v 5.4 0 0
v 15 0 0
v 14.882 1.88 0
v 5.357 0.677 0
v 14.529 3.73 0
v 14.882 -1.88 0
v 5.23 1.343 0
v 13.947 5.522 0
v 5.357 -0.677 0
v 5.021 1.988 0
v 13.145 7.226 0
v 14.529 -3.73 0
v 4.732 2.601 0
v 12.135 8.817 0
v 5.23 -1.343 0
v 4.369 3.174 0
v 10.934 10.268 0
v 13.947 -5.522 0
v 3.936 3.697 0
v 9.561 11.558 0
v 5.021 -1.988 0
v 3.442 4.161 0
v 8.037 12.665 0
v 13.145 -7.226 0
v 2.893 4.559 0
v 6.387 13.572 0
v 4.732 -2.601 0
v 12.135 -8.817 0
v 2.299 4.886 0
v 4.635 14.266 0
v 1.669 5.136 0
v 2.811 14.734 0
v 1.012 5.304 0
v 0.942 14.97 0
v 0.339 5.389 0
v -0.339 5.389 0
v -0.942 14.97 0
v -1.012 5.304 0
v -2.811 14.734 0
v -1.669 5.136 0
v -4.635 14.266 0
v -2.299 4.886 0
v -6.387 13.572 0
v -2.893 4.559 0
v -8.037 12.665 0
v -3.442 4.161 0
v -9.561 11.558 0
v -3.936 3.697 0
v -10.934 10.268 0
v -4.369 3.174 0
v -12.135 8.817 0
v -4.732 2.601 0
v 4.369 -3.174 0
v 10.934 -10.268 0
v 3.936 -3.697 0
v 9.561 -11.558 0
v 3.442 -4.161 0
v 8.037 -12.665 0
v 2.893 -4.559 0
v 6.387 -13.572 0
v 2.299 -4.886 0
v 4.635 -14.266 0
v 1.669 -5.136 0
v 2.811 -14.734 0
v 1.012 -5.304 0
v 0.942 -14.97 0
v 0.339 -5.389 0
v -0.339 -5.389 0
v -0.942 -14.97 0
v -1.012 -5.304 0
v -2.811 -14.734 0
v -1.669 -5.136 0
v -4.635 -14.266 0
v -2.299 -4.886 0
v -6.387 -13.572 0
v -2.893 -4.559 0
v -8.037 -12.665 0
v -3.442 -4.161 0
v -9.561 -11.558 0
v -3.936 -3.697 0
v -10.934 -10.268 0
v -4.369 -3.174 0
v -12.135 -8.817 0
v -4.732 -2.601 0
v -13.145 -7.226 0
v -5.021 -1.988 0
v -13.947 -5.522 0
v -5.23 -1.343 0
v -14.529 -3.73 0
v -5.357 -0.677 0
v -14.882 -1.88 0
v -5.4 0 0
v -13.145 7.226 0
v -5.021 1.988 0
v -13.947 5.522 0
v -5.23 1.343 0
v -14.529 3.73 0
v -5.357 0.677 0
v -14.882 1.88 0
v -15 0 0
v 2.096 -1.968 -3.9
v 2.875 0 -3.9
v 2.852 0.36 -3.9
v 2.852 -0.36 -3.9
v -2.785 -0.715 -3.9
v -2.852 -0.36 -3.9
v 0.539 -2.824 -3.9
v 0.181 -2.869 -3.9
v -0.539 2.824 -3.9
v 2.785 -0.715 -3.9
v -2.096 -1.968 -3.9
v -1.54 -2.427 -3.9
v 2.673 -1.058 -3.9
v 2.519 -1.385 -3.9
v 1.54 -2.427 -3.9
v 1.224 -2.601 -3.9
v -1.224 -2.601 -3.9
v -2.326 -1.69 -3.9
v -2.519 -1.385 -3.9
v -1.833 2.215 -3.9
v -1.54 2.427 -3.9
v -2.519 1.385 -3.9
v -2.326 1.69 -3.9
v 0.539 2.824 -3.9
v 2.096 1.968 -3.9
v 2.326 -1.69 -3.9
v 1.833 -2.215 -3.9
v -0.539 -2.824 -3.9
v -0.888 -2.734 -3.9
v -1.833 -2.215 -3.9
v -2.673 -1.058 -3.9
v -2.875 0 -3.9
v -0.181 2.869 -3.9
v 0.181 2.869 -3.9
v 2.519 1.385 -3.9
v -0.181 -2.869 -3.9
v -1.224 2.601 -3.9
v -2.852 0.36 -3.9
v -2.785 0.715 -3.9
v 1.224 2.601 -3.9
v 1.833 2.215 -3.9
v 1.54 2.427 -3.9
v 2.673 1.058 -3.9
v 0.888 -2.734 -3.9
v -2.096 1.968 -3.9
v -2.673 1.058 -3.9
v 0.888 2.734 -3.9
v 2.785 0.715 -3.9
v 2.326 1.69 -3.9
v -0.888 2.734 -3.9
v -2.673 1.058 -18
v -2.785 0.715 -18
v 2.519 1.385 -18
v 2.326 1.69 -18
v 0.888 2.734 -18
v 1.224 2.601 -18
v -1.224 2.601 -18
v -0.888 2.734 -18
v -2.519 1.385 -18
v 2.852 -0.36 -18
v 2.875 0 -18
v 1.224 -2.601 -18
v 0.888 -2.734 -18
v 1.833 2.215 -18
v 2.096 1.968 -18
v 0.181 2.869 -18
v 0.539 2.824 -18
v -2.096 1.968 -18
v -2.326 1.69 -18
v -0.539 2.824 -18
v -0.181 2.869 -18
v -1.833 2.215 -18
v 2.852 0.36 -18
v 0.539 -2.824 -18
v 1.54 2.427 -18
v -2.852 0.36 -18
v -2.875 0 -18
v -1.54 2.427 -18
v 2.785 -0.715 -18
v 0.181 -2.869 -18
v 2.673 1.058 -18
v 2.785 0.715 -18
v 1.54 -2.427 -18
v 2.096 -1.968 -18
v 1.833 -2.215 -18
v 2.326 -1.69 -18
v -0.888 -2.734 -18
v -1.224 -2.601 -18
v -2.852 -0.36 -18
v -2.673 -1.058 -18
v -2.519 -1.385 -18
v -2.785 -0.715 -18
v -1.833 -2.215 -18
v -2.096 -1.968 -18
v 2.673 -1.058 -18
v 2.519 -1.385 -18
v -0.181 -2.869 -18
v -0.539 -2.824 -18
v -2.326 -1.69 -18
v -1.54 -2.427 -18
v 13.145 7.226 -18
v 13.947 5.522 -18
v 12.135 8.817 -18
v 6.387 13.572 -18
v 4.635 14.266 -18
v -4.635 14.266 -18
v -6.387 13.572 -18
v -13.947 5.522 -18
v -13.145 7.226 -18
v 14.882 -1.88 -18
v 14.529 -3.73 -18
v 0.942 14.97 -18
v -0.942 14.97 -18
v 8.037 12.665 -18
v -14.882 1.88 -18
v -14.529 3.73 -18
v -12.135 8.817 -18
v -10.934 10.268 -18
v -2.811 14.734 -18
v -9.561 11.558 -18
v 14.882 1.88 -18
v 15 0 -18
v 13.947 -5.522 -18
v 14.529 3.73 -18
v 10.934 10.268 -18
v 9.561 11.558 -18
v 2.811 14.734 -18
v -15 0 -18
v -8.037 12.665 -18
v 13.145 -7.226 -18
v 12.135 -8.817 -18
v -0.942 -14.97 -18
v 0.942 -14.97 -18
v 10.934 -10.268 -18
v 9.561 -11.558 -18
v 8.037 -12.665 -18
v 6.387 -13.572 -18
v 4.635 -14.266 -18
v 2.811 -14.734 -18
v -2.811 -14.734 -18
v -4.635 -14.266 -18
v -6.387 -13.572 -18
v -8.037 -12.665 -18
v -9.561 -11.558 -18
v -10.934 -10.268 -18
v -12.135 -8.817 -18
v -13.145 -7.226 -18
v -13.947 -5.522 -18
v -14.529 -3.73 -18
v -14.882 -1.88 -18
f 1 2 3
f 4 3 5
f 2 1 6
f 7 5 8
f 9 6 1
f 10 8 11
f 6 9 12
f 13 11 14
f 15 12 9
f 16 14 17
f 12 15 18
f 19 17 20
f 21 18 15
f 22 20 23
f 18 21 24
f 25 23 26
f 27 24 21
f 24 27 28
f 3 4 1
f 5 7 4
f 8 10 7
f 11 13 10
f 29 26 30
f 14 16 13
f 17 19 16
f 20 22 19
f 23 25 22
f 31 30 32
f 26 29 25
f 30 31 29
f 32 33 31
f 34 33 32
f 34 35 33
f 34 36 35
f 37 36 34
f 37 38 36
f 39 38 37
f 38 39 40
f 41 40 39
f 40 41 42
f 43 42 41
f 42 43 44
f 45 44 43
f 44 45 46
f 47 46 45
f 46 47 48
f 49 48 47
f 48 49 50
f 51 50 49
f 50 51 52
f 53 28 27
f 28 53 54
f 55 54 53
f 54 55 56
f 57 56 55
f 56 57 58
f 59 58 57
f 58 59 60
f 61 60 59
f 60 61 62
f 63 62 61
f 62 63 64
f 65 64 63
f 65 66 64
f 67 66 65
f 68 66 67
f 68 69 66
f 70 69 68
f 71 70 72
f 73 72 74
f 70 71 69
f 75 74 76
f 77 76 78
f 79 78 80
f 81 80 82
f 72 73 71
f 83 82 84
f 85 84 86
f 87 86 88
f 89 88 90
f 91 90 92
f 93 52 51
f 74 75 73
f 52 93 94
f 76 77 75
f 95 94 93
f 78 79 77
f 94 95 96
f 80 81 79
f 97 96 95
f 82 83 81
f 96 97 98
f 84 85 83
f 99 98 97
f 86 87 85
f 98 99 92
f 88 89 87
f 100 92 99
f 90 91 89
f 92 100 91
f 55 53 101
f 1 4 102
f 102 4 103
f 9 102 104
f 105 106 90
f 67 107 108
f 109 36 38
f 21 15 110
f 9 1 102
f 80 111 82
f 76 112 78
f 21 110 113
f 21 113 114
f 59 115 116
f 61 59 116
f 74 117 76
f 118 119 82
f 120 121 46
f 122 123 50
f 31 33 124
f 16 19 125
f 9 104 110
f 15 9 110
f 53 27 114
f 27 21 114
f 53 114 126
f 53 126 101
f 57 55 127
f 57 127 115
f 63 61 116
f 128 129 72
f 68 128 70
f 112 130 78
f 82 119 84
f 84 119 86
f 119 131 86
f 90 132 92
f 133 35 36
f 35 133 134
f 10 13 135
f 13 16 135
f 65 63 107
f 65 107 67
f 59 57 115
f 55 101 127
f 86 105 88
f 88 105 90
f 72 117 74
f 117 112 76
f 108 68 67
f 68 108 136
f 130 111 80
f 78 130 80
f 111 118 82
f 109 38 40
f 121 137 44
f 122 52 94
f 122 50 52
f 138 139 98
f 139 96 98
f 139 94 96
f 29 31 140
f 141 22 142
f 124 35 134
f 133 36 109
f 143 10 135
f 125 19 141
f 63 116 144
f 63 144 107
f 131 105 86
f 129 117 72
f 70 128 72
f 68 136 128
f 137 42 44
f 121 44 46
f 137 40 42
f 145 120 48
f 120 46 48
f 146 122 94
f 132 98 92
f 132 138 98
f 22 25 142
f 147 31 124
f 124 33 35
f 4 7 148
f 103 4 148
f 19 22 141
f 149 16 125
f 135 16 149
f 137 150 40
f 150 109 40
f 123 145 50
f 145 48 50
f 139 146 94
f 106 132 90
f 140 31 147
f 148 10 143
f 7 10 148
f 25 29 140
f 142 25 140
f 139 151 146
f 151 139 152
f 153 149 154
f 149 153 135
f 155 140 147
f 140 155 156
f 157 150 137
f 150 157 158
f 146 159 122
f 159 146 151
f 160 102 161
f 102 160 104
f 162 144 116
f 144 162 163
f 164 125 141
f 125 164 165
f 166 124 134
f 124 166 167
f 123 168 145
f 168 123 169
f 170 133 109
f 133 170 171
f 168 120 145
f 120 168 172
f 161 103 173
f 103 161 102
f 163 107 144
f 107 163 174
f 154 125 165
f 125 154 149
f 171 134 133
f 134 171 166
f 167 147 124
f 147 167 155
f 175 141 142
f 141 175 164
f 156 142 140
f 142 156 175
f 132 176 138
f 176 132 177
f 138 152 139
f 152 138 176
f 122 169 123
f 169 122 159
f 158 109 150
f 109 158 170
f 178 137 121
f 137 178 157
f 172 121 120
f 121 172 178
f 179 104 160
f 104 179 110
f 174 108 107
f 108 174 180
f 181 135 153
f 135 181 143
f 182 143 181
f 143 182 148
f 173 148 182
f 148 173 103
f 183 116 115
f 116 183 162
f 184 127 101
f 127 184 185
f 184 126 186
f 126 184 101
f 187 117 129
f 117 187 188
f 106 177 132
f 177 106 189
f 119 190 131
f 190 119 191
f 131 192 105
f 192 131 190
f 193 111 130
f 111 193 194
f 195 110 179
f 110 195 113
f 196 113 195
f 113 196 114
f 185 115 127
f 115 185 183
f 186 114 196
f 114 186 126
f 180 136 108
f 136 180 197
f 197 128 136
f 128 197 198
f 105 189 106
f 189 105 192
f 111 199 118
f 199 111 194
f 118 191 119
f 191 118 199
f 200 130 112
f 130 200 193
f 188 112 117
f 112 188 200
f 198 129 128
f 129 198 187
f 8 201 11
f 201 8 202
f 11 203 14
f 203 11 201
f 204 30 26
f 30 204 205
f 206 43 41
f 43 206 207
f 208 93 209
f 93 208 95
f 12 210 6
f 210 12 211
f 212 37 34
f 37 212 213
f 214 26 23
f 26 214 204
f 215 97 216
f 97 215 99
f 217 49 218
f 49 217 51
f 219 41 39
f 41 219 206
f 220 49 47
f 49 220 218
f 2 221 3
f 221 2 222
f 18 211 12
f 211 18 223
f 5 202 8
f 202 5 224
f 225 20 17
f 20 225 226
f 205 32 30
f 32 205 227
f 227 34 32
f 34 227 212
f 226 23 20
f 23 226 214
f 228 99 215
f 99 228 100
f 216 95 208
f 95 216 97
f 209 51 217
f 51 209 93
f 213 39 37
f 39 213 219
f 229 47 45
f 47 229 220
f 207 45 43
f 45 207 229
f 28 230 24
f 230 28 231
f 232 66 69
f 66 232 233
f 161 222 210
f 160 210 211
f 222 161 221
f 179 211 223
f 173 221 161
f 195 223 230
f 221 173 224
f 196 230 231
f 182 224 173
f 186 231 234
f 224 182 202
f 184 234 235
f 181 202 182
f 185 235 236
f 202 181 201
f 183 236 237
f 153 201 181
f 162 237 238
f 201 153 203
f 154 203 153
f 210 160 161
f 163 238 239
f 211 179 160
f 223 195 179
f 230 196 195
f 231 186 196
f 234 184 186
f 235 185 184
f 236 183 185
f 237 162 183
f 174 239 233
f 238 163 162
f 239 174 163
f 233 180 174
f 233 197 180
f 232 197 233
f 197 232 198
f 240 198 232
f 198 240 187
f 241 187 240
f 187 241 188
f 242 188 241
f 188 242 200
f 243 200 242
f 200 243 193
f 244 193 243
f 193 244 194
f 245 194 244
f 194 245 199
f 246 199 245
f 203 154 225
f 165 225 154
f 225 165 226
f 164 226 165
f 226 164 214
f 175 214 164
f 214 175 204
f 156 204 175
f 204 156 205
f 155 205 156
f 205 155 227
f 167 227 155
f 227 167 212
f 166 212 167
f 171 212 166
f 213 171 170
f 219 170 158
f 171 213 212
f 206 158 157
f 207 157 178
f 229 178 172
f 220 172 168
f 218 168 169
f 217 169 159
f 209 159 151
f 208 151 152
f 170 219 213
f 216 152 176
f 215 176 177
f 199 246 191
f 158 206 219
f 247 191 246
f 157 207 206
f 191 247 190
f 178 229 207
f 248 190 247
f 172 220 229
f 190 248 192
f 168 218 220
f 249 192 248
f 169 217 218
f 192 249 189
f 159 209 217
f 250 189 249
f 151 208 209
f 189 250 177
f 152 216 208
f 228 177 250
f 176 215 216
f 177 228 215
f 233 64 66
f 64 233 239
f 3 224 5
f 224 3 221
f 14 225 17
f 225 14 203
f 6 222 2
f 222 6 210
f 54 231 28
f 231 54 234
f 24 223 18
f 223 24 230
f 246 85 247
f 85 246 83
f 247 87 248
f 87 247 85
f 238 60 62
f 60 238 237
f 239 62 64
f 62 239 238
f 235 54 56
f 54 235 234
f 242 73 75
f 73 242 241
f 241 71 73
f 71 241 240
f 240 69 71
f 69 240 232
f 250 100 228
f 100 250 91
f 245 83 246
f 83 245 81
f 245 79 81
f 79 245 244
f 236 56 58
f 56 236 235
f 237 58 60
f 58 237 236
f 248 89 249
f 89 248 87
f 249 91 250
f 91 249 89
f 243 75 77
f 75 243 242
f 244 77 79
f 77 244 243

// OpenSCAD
$fn = 50;

difference() {
	union() {
		translate(v = [0, 0, -18.0]) {
			cylinder(h = 18, r = 15.0);
		}
	}
	union() {
		translate(v = [0, 0, 0]) {
			rotate(a = [0, 0, 0]) {
				difference() {
					union() {
						translate(v = [0, 0, -21.0]) {
							cylinder(h = 21, r = 2.6);
						}
						translate(v = [0, 0, -3.9]) {
							cylinder(h = 3.9, r1 = 2.875, r2 = 5.4);
						}
						translate(v = [0, 0, -21.0]) {
							cylinder(h = 21, r = 2.875);
						}
						translate(v = [0, 0, -21.0]) {
							cylinder(h = 21, r = 2.6);
						}
					}
					union();
				}
			}
		}
	}
}
